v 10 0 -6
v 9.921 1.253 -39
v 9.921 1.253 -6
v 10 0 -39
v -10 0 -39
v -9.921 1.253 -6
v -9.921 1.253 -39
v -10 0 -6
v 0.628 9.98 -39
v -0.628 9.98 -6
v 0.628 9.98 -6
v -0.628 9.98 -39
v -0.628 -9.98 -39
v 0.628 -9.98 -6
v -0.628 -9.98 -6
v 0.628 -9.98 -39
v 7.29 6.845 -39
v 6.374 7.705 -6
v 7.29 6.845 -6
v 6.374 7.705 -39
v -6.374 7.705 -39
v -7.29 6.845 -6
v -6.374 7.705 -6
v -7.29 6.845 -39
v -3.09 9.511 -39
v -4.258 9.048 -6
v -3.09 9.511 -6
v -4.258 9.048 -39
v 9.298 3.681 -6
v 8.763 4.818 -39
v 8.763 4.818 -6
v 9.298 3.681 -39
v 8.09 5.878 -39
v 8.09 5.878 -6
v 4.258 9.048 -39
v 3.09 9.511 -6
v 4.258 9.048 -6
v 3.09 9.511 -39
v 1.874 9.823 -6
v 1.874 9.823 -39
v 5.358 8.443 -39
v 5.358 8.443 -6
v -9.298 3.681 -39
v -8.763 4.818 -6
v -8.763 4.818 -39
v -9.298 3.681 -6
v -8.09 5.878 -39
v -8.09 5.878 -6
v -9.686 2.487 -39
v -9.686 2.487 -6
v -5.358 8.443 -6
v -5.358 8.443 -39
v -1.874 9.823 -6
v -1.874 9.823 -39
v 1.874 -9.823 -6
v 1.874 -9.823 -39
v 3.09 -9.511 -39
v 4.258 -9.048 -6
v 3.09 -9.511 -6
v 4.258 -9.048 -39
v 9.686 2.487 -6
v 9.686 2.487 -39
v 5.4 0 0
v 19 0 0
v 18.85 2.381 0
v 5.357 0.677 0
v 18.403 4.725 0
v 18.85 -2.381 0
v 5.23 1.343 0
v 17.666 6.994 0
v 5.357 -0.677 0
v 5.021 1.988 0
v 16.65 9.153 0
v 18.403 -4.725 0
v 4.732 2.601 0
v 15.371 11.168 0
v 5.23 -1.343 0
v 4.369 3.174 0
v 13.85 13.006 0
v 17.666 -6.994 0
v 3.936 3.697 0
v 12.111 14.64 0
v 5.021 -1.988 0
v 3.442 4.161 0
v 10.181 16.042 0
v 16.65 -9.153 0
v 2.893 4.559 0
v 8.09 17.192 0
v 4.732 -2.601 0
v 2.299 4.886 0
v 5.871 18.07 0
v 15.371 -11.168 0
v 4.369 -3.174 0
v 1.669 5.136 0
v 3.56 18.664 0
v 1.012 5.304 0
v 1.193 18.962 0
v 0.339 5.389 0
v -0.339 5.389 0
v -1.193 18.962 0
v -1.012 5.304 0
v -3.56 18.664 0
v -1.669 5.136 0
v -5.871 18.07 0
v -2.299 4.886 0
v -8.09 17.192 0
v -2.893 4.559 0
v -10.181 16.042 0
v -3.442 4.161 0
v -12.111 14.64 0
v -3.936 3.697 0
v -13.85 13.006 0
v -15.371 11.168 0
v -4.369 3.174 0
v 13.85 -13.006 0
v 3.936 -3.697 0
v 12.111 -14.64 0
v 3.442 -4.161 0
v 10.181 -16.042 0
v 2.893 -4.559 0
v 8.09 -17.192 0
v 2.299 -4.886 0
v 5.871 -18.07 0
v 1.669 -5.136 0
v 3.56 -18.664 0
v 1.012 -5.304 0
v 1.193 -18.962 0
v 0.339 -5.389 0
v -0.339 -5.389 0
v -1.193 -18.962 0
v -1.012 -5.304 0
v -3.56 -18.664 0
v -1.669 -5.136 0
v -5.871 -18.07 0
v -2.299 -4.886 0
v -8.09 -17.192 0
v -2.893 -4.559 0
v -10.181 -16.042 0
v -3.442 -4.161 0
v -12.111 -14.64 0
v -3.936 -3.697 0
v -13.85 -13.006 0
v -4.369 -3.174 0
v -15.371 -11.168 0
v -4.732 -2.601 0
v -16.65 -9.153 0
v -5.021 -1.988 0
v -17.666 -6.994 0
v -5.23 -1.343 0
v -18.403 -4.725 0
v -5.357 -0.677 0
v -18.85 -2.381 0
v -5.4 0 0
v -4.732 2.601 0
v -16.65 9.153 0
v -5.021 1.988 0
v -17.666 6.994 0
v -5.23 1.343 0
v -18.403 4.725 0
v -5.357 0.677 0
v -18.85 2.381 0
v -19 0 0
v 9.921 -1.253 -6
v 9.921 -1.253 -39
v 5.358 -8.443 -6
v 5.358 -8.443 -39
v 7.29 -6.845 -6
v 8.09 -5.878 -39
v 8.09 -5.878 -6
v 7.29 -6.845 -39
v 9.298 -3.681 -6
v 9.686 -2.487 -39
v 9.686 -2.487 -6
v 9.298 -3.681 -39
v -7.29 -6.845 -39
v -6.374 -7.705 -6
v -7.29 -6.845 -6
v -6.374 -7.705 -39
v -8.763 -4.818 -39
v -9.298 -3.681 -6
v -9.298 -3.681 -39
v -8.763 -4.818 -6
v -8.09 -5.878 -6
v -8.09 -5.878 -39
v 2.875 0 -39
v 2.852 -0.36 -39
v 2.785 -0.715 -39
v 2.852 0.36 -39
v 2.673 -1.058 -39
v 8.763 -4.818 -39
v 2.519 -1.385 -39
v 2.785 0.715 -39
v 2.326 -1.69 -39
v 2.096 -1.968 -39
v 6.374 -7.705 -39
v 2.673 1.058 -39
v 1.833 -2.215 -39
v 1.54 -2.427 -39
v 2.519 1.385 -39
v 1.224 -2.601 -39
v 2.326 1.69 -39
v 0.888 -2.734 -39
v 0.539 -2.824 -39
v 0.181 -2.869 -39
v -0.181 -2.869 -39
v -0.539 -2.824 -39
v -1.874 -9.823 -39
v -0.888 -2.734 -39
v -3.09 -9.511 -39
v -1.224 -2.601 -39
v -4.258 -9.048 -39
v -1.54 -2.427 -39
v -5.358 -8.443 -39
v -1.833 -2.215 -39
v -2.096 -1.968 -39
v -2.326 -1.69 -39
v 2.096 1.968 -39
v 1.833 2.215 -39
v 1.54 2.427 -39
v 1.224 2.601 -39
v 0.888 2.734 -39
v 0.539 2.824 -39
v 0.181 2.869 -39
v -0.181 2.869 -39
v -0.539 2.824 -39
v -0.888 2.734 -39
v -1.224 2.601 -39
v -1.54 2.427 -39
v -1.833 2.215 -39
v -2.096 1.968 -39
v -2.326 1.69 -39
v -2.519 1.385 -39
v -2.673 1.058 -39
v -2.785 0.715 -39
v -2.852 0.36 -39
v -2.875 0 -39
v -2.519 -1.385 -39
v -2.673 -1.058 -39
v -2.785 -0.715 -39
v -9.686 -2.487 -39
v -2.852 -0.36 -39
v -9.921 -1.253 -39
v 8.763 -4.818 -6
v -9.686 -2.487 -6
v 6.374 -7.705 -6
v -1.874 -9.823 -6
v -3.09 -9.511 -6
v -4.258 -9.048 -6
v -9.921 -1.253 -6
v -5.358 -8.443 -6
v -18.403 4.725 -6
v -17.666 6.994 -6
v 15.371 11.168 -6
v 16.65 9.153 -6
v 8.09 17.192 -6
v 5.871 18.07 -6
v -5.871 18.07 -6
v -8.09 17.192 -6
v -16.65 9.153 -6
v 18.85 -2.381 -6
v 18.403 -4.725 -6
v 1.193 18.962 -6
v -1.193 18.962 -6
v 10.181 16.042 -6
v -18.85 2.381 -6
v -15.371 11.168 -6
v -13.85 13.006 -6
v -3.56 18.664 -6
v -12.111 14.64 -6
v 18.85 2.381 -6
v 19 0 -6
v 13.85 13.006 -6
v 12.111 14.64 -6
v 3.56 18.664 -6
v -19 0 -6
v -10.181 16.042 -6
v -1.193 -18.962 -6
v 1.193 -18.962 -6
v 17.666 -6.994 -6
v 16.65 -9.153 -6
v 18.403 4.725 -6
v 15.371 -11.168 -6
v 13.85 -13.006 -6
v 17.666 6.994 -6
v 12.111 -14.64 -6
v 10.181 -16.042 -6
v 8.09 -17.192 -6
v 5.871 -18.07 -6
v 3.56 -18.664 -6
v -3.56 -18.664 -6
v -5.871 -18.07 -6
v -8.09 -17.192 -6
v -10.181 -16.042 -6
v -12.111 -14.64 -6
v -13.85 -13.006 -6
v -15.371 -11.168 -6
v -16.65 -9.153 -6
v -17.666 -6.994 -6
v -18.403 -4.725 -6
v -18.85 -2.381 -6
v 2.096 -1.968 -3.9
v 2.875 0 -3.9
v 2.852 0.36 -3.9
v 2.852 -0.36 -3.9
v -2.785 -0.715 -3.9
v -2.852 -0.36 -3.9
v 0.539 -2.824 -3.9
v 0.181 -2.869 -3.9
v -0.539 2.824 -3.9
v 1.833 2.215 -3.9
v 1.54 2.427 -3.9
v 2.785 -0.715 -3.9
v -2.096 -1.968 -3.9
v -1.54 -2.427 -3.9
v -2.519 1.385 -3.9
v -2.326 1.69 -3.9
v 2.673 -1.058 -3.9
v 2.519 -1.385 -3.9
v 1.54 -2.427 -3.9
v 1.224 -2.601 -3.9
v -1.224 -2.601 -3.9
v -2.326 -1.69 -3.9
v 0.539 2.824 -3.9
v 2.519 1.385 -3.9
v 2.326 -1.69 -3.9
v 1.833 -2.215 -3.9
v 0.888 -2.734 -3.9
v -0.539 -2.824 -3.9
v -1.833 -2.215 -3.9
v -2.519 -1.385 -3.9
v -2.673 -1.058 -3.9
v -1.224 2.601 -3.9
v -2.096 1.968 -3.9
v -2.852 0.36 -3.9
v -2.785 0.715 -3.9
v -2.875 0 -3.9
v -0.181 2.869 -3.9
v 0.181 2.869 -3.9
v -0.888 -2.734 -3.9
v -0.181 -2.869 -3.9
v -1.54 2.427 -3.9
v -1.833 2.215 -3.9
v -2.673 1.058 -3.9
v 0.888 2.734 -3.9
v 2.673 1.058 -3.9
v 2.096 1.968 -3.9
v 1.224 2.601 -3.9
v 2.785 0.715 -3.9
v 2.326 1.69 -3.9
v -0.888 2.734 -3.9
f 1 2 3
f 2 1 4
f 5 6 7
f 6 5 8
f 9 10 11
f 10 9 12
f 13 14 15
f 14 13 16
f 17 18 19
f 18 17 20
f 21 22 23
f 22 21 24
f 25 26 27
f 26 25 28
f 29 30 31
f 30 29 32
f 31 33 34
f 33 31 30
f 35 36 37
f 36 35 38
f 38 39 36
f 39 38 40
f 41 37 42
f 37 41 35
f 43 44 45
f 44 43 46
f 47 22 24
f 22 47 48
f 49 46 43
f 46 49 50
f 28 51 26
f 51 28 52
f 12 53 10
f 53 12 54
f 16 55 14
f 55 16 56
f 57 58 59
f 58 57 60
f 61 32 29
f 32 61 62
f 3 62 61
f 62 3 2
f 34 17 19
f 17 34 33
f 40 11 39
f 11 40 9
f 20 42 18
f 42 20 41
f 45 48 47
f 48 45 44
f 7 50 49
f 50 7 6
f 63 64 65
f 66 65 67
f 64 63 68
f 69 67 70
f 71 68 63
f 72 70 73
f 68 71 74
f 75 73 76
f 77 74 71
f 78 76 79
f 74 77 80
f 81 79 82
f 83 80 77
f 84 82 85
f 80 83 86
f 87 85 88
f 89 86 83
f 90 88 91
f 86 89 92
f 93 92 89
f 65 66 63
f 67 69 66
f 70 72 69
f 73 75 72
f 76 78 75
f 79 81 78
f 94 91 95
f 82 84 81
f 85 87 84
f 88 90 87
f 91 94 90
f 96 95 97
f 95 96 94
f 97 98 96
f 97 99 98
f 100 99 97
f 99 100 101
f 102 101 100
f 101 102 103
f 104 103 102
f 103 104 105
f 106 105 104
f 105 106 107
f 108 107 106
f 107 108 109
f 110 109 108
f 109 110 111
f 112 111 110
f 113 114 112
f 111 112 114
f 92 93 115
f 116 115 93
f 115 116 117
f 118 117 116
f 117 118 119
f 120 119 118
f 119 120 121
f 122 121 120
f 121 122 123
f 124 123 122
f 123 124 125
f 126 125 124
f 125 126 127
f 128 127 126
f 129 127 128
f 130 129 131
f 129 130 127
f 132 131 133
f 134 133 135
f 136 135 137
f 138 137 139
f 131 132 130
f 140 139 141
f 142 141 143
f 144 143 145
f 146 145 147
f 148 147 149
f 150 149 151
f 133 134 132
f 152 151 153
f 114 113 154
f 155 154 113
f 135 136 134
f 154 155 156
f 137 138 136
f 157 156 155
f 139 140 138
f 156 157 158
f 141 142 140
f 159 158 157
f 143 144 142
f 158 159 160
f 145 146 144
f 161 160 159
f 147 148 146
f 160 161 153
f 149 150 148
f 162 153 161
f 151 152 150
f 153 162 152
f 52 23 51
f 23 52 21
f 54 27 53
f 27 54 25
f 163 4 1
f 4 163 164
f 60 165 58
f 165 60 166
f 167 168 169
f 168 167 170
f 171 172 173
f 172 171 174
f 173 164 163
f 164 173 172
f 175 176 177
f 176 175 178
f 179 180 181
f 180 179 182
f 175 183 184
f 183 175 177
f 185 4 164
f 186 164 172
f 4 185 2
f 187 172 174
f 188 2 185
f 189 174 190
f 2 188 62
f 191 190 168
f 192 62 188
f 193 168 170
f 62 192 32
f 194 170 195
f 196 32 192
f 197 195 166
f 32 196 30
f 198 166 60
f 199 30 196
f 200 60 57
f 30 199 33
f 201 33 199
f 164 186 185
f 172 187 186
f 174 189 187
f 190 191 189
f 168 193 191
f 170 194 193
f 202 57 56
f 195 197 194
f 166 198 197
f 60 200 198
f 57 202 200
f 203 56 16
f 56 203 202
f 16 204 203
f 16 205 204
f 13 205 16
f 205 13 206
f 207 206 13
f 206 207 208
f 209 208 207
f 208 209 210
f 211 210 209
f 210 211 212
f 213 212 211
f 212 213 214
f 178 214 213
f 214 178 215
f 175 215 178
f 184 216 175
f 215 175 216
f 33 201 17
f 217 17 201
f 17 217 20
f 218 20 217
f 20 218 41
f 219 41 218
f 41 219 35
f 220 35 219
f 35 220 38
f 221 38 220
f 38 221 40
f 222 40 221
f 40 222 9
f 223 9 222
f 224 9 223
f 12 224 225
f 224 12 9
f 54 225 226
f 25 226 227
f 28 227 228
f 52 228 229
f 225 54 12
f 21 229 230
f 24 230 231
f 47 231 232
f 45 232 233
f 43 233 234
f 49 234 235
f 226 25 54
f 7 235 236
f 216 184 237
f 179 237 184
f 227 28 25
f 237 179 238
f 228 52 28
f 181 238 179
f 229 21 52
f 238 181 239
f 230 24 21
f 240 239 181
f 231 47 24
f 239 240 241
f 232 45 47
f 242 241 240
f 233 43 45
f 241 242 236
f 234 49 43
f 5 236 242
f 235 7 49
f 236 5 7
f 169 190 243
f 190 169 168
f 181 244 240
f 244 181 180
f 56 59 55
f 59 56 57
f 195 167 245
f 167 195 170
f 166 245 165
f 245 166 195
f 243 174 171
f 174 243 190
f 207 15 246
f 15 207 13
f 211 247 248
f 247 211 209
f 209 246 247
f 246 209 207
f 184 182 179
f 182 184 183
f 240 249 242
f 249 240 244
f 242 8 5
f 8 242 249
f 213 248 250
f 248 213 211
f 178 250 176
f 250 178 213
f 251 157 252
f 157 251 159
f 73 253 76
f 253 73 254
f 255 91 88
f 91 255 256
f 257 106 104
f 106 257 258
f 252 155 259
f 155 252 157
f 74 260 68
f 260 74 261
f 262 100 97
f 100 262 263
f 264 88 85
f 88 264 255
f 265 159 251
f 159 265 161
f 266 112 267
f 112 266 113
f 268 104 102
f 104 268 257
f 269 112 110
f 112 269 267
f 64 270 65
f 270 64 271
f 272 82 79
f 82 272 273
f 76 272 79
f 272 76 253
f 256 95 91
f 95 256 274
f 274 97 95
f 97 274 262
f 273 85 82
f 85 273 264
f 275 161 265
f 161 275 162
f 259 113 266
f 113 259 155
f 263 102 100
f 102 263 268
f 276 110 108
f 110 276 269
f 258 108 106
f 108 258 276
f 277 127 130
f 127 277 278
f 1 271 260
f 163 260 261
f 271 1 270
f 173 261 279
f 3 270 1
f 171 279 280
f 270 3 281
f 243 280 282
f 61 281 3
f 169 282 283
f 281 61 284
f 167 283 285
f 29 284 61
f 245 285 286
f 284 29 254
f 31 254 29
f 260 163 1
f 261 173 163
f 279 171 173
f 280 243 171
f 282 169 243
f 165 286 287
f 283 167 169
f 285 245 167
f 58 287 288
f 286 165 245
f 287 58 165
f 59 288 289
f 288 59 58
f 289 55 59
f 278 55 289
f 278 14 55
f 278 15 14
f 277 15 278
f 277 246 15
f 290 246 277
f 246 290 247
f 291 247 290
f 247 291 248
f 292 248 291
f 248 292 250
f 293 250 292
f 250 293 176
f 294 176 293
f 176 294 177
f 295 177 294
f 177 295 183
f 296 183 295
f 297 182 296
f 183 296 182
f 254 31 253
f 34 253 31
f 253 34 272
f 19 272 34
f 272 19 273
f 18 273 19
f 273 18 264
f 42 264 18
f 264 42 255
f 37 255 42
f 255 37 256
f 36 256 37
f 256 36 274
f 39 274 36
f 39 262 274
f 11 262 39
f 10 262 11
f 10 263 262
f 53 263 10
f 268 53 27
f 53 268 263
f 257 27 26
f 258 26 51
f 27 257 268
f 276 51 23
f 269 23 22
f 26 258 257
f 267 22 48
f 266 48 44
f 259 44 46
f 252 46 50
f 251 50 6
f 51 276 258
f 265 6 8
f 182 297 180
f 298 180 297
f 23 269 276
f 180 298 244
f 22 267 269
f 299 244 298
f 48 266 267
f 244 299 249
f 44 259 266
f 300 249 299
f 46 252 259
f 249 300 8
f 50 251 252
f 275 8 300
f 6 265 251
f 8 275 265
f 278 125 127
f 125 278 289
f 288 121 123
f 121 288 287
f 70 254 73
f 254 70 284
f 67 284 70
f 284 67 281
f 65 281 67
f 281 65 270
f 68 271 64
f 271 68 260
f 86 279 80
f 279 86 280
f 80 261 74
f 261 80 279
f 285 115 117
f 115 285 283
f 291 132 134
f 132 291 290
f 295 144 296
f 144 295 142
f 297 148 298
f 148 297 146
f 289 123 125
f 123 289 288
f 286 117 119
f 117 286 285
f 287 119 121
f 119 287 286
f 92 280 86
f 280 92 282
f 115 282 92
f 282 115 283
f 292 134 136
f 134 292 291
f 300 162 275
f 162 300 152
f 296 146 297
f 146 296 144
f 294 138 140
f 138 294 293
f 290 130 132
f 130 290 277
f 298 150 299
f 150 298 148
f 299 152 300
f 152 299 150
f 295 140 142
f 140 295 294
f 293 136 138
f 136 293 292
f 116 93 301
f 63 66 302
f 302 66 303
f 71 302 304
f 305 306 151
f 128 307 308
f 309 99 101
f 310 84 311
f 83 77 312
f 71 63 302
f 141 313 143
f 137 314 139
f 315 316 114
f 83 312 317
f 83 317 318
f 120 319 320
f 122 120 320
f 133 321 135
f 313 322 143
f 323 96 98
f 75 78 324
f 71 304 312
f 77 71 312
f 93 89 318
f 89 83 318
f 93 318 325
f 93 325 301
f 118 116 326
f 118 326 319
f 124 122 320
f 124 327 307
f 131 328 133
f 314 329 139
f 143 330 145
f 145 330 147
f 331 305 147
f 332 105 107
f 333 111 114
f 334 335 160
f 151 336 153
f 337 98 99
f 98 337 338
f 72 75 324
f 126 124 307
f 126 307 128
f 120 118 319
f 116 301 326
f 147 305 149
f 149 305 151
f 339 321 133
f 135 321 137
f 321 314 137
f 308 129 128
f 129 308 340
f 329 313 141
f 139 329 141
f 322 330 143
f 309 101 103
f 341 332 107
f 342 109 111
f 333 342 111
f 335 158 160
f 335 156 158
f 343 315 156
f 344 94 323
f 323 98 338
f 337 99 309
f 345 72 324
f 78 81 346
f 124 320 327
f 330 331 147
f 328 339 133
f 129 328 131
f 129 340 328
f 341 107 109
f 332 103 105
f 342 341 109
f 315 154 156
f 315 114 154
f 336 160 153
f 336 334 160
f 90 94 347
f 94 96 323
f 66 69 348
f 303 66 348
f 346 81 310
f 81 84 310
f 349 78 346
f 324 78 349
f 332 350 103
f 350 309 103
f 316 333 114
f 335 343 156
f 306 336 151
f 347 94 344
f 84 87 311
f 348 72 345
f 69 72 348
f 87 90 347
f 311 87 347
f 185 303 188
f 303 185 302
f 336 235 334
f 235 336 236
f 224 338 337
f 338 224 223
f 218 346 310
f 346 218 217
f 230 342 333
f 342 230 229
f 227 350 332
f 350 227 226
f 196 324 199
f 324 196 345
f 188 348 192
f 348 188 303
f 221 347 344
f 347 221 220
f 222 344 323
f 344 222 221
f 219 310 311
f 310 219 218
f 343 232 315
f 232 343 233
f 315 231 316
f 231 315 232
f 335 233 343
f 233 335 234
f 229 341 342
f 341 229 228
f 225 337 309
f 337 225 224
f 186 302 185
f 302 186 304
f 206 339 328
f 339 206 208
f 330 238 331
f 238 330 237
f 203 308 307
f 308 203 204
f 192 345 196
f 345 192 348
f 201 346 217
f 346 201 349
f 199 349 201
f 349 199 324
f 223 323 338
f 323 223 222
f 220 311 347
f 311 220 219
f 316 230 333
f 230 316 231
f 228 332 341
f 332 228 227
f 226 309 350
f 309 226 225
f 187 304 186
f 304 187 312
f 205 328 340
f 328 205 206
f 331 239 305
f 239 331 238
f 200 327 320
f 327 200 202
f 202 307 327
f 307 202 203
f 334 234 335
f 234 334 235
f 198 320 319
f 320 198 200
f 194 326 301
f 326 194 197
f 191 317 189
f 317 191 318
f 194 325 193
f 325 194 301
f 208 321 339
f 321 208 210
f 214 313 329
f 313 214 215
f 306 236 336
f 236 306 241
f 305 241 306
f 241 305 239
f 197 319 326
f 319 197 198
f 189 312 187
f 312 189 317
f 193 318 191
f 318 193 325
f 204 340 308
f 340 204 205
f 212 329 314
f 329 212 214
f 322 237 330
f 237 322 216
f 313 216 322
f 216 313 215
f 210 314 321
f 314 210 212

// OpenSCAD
$fn = 50;


difference() {
	union() {
		translate(v = [0, 0, -39.0000000000]) {
			cylinder(h = 39, r = 10.0000000000);
		}
		translate(v = [0, 0, -6.0000000000]) {
			cylinder(h = 6, r = 19.0000000000);
		}
	}
	union() {
		translate(v = [0, 0, 0]) {
			rotate(a = [0, 0, 0]) {
				difference() {
					union() {
						#translate(v = [0, 0, -39.0000000000]) {
							cylinder(h = 39, r = 2.6000000000);
						}
						#translate(v = [0, 0, -3.9000000000]) {
							cylinder(h = 3.9000000000, r1 = 2.8750000000, r2 = 5.4000000000);
						}
						#translate(v = [0, 0, -39.0000000000]) {
							cylinder(h = 39, r = 2.8750000000);
						}
						#translate(v = [0, 0, -39.0000000000]) {
							cylinder(h = 39, r = 2.6000000000);
						}
					}
					union();
				}
			}
		}
	}
}
